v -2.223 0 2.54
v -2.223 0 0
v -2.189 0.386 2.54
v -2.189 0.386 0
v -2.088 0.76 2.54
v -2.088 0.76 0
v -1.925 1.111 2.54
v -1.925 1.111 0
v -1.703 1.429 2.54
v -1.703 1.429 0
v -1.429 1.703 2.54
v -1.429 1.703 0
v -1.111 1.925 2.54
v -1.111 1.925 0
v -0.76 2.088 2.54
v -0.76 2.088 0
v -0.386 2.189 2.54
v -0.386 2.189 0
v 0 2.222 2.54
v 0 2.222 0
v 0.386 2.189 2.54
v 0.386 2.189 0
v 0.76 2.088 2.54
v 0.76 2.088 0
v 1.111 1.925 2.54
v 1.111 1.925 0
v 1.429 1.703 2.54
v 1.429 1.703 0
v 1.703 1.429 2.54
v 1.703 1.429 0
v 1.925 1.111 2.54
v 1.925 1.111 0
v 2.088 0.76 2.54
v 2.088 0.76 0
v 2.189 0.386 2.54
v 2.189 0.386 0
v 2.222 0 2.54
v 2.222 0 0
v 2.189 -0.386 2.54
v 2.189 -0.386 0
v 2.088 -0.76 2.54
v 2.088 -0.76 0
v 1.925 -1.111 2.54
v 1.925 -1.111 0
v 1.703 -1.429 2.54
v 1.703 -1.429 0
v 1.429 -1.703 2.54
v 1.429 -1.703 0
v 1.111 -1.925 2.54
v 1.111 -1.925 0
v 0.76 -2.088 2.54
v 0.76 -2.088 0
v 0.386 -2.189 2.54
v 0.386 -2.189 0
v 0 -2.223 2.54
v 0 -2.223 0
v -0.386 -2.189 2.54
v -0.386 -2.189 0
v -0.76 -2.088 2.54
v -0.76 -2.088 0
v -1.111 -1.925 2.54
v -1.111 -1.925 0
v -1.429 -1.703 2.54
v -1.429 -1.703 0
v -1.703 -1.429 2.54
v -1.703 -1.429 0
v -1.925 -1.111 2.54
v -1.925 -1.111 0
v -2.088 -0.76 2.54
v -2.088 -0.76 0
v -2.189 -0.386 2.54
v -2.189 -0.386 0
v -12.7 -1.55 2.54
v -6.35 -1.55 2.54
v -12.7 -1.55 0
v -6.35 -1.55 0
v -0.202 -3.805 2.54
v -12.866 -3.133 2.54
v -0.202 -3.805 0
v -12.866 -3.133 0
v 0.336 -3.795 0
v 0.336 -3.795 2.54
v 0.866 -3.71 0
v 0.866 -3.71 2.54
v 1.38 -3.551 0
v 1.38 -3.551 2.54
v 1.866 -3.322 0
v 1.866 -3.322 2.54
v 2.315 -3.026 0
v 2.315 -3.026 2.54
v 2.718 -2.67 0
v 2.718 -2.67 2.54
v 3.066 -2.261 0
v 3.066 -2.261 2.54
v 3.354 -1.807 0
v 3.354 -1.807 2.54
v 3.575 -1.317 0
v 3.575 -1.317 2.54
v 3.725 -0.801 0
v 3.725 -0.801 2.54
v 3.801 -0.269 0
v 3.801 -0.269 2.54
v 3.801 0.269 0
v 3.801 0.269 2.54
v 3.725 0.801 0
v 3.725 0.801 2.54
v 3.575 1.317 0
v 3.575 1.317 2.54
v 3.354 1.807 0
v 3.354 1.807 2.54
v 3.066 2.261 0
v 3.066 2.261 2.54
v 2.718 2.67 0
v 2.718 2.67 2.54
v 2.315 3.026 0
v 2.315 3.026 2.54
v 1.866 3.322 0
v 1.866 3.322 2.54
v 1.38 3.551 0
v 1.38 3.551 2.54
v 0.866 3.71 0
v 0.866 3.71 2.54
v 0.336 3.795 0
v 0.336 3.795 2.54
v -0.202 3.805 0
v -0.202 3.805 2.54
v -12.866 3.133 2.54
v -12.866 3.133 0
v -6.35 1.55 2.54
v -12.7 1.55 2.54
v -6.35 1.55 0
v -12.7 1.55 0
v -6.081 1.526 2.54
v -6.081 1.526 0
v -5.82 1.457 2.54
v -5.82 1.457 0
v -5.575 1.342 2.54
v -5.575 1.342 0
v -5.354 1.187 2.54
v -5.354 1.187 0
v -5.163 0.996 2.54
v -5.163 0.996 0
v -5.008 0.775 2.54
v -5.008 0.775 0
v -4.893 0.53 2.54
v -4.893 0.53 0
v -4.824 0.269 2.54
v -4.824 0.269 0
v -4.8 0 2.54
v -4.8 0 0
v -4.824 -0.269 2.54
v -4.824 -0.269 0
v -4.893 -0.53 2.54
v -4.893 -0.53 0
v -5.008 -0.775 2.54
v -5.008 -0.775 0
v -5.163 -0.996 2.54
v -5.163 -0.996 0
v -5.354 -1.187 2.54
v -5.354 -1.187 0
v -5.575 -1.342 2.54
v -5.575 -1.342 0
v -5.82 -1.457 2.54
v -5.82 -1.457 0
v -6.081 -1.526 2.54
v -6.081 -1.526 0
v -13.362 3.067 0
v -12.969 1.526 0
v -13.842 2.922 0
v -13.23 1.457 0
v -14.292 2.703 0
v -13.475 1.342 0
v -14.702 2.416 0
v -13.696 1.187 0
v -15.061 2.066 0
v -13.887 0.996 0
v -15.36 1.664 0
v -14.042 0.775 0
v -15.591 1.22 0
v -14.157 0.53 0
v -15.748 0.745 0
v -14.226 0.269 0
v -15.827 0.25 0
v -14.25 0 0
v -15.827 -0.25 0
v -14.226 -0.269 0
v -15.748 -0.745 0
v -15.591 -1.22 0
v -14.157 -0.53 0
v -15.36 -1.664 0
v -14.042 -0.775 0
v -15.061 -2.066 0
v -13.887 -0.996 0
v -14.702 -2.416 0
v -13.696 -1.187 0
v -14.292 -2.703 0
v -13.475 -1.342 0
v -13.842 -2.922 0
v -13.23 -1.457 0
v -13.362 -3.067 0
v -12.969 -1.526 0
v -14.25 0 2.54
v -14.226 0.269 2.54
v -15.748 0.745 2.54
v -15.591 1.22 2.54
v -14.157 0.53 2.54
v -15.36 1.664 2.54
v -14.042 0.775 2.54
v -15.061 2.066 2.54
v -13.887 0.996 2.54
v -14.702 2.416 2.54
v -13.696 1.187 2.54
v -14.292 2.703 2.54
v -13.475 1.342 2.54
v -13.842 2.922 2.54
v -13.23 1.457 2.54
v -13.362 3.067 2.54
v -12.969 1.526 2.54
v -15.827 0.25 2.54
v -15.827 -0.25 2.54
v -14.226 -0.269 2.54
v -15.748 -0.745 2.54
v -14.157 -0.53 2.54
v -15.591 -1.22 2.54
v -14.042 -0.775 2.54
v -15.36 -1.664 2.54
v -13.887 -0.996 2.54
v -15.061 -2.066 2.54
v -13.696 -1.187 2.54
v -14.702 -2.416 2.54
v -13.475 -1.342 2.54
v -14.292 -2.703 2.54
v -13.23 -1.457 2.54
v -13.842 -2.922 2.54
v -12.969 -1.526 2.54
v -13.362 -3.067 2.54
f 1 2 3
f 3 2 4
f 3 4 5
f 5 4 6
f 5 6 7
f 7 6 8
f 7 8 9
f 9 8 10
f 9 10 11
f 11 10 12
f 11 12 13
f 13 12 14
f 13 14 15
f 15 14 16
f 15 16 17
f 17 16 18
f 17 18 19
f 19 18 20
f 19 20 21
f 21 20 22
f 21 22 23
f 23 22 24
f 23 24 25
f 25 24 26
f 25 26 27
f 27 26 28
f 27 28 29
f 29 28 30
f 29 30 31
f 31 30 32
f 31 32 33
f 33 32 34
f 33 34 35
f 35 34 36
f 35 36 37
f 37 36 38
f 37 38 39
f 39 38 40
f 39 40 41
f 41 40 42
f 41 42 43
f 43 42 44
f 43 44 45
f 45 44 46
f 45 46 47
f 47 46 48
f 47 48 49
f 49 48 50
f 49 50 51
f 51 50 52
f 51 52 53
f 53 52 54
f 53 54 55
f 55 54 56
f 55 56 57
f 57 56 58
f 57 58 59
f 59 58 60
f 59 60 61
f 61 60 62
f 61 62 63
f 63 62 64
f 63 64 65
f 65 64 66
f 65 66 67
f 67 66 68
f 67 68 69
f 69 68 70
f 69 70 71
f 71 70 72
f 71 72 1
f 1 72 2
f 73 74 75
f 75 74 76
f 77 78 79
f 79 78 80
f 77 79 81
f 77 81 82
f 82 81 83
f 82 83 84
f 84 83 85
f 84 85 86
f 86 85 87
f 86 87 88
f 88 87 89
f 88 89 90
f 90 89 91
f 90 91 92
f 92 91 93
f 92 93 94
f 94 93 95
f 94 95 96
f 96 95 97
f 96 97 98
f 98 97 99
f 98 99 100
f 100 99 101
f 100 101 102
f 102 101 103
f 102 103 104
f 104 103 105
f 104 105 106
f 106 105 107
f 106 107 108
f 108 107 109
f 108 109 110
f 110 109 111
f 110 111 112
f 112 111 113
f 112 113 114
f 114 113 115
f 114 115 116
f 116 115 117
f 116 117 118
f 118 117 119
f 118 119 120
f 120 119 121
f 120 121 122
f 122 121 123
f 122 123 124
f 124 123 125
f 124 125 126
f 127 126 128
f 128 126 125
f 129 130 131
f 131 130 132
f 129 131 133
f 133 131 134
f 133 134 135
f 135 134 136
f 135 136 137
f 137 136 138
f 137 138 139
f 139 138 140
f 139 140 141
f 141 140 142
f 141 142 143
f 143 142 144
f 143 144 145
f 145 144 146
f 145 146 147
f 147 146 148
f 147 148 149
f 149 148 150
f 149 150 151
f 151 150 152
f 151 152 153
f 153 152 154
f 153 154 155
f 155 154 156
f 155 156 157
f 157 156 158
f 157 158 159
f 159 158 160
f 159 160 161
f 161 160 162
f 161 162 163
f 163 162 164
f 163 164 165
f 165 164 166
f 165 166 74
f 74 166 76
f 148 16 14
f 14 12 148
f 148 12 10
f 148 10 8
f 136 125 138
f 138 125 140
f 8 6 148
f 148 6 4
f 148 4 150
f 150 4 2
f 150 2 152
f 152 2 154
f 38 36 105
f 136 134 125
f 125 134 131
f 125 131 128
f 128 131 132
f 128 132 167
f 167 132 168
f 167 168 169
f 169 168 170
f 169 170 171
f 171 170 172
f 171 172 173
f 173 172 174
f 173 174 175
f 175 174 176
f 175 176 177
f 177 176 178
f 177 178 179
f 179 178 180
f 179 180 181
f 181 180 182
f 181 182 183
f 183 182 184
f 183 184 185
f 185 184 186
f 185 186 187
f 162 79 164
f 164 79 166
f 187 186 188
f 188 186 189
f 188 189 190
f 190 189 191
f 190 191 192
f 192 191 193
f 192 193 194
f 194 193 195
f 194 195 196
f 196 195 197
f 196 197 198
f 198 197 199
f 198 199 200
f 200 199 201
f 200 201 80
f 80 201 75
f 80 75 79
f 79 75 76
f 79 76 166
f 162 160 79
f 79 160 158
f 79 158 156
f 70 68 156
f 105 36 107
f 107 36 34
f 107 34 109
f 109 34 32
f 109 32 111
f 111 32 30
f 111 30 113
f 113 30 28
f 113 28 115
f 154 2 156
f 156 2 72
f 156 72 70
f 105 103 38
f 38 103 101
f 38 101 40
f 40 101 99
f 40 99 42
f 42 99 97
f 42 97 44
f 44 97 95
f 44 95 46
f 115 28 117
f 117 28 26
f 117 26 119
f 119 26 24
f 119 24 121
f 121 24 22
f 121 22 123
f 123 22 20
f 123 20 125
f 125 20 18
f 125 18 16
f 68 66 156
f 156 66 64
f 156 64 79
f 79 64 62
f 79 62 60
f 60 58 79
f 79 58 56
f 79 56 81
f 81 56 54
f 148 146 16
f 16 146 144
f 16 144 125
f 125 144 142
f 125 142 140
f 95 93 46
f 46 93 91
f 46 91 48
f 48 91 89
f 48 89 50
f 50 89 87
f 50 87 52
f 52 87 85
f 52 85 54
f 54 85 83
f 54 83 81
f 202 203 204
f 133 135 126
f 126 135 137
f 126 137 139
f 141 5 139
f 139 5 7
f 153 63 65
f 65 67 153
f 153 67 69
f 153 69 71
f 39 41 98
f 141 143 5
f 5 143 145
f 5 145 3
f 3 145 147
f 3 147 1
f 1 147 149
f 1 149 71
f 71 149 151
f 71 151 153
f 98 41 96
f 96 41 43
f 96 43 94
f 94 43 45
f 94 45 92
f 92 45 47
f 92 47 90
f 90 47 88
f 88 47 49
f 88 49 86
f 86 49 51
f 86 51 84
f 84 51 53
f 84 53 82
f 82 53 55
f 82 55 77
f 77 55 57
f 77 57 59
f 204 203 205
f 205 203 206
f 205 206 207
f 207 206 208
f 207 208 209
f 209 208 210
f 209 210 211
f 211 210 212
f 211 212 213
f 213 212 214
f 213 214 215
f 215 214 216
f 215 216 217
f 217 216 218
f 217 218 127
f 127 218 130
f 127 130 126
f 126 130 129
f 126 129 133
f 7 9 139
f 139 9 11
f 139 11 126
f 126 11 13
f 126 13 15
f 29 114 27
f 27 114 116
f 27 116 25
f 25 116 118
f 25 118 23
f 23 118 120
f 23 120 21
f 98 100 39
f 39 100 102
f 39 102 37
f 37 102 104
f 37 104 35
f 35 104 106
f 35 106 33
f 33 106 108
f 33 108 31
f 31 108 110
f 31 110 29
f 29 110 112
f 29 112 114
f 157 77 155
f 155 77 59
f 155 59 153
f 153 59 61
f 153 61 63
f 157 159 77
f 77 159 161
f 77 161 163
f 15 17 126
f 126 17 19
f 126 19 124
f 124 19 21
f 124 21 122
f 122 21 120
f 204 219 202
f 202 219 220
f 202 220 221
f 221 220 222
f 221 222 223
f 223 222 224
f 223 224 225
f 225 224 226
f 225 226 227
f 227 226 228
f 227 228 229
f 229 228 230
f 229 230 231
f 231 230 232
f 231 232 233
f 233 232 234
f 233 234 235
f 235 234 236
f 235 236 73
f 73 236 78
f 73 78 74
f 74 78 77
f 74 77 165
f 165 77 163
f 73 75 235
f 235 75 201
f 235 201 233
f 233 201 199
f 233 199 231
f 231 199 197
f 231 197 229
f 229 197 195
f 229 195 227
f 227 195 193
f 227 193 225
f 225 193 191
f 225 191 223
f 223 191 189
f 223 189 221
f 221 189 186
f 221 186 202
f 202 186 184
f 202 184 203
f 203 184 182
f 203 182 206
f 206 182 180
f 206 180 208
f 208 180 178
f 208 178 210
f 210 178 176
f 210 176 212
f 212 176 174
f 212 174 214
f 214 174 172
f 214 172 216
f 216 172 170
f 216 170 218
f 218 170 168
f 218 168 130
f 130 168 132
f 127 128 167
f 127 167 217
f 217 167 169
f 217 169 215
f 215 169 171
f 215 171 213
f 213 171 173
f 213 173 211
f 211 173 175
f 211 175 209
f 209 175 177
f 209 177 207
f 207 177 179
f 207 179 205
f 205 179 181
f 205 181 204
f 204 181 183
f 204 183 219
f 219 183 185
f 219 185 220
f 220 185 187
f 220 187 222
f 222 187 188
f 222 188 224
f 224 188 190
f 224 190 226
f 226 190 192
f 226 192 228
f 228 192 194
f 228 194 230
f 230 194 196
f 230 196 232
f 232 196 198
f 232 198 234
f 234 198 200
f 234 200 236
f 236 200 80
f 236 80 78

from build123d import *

# Parameters (mm, degrees)
SKETCH1_R           = 2.2225
BOSS_EXTRUDE1_DEPTH = 2.54


with BuildPart() as part:
    # Sketch1 → Boss-Extrude1 (new body)
    with BuildSketch(Plane.XY):
        with BuildLine():
            ThreePointArc((-12.866139272, 3.133098146), (-15.8375, 0), (-12.866139272, -3.133098146))
            Line((-12.866139272, -3.133098146), (-0.20175, -3.804654641))
            ThreePointArc((-0.20175, -3.804654641), (3.81, 0), (-0.20175, 3.804654641))
            Line((-0.20175, 3.804654641), (-12.866139272, 3.133098146))
        make_face()
        with BuildLine():
            Line((-12.7, 1.55), (-6.35, 1.55))
            ThreePointArc((-6.35, 1.55), (-4.8, 0), (-6.35, -1.55))
            Line((-6.35, -1.55), (-12.7, -1.55))
            ThreePointArc((-12.7, -1.55), (-14.25, 0), (-12.7, 1.55))
        make_face(mode=Mode.SUBTRACT)
        Circle(SKETCH1_R, mode=Mode.SUBTRACT)
    extrude(amount=BOSS_EXTRUDE1_DEPTH)


solid = part.part
